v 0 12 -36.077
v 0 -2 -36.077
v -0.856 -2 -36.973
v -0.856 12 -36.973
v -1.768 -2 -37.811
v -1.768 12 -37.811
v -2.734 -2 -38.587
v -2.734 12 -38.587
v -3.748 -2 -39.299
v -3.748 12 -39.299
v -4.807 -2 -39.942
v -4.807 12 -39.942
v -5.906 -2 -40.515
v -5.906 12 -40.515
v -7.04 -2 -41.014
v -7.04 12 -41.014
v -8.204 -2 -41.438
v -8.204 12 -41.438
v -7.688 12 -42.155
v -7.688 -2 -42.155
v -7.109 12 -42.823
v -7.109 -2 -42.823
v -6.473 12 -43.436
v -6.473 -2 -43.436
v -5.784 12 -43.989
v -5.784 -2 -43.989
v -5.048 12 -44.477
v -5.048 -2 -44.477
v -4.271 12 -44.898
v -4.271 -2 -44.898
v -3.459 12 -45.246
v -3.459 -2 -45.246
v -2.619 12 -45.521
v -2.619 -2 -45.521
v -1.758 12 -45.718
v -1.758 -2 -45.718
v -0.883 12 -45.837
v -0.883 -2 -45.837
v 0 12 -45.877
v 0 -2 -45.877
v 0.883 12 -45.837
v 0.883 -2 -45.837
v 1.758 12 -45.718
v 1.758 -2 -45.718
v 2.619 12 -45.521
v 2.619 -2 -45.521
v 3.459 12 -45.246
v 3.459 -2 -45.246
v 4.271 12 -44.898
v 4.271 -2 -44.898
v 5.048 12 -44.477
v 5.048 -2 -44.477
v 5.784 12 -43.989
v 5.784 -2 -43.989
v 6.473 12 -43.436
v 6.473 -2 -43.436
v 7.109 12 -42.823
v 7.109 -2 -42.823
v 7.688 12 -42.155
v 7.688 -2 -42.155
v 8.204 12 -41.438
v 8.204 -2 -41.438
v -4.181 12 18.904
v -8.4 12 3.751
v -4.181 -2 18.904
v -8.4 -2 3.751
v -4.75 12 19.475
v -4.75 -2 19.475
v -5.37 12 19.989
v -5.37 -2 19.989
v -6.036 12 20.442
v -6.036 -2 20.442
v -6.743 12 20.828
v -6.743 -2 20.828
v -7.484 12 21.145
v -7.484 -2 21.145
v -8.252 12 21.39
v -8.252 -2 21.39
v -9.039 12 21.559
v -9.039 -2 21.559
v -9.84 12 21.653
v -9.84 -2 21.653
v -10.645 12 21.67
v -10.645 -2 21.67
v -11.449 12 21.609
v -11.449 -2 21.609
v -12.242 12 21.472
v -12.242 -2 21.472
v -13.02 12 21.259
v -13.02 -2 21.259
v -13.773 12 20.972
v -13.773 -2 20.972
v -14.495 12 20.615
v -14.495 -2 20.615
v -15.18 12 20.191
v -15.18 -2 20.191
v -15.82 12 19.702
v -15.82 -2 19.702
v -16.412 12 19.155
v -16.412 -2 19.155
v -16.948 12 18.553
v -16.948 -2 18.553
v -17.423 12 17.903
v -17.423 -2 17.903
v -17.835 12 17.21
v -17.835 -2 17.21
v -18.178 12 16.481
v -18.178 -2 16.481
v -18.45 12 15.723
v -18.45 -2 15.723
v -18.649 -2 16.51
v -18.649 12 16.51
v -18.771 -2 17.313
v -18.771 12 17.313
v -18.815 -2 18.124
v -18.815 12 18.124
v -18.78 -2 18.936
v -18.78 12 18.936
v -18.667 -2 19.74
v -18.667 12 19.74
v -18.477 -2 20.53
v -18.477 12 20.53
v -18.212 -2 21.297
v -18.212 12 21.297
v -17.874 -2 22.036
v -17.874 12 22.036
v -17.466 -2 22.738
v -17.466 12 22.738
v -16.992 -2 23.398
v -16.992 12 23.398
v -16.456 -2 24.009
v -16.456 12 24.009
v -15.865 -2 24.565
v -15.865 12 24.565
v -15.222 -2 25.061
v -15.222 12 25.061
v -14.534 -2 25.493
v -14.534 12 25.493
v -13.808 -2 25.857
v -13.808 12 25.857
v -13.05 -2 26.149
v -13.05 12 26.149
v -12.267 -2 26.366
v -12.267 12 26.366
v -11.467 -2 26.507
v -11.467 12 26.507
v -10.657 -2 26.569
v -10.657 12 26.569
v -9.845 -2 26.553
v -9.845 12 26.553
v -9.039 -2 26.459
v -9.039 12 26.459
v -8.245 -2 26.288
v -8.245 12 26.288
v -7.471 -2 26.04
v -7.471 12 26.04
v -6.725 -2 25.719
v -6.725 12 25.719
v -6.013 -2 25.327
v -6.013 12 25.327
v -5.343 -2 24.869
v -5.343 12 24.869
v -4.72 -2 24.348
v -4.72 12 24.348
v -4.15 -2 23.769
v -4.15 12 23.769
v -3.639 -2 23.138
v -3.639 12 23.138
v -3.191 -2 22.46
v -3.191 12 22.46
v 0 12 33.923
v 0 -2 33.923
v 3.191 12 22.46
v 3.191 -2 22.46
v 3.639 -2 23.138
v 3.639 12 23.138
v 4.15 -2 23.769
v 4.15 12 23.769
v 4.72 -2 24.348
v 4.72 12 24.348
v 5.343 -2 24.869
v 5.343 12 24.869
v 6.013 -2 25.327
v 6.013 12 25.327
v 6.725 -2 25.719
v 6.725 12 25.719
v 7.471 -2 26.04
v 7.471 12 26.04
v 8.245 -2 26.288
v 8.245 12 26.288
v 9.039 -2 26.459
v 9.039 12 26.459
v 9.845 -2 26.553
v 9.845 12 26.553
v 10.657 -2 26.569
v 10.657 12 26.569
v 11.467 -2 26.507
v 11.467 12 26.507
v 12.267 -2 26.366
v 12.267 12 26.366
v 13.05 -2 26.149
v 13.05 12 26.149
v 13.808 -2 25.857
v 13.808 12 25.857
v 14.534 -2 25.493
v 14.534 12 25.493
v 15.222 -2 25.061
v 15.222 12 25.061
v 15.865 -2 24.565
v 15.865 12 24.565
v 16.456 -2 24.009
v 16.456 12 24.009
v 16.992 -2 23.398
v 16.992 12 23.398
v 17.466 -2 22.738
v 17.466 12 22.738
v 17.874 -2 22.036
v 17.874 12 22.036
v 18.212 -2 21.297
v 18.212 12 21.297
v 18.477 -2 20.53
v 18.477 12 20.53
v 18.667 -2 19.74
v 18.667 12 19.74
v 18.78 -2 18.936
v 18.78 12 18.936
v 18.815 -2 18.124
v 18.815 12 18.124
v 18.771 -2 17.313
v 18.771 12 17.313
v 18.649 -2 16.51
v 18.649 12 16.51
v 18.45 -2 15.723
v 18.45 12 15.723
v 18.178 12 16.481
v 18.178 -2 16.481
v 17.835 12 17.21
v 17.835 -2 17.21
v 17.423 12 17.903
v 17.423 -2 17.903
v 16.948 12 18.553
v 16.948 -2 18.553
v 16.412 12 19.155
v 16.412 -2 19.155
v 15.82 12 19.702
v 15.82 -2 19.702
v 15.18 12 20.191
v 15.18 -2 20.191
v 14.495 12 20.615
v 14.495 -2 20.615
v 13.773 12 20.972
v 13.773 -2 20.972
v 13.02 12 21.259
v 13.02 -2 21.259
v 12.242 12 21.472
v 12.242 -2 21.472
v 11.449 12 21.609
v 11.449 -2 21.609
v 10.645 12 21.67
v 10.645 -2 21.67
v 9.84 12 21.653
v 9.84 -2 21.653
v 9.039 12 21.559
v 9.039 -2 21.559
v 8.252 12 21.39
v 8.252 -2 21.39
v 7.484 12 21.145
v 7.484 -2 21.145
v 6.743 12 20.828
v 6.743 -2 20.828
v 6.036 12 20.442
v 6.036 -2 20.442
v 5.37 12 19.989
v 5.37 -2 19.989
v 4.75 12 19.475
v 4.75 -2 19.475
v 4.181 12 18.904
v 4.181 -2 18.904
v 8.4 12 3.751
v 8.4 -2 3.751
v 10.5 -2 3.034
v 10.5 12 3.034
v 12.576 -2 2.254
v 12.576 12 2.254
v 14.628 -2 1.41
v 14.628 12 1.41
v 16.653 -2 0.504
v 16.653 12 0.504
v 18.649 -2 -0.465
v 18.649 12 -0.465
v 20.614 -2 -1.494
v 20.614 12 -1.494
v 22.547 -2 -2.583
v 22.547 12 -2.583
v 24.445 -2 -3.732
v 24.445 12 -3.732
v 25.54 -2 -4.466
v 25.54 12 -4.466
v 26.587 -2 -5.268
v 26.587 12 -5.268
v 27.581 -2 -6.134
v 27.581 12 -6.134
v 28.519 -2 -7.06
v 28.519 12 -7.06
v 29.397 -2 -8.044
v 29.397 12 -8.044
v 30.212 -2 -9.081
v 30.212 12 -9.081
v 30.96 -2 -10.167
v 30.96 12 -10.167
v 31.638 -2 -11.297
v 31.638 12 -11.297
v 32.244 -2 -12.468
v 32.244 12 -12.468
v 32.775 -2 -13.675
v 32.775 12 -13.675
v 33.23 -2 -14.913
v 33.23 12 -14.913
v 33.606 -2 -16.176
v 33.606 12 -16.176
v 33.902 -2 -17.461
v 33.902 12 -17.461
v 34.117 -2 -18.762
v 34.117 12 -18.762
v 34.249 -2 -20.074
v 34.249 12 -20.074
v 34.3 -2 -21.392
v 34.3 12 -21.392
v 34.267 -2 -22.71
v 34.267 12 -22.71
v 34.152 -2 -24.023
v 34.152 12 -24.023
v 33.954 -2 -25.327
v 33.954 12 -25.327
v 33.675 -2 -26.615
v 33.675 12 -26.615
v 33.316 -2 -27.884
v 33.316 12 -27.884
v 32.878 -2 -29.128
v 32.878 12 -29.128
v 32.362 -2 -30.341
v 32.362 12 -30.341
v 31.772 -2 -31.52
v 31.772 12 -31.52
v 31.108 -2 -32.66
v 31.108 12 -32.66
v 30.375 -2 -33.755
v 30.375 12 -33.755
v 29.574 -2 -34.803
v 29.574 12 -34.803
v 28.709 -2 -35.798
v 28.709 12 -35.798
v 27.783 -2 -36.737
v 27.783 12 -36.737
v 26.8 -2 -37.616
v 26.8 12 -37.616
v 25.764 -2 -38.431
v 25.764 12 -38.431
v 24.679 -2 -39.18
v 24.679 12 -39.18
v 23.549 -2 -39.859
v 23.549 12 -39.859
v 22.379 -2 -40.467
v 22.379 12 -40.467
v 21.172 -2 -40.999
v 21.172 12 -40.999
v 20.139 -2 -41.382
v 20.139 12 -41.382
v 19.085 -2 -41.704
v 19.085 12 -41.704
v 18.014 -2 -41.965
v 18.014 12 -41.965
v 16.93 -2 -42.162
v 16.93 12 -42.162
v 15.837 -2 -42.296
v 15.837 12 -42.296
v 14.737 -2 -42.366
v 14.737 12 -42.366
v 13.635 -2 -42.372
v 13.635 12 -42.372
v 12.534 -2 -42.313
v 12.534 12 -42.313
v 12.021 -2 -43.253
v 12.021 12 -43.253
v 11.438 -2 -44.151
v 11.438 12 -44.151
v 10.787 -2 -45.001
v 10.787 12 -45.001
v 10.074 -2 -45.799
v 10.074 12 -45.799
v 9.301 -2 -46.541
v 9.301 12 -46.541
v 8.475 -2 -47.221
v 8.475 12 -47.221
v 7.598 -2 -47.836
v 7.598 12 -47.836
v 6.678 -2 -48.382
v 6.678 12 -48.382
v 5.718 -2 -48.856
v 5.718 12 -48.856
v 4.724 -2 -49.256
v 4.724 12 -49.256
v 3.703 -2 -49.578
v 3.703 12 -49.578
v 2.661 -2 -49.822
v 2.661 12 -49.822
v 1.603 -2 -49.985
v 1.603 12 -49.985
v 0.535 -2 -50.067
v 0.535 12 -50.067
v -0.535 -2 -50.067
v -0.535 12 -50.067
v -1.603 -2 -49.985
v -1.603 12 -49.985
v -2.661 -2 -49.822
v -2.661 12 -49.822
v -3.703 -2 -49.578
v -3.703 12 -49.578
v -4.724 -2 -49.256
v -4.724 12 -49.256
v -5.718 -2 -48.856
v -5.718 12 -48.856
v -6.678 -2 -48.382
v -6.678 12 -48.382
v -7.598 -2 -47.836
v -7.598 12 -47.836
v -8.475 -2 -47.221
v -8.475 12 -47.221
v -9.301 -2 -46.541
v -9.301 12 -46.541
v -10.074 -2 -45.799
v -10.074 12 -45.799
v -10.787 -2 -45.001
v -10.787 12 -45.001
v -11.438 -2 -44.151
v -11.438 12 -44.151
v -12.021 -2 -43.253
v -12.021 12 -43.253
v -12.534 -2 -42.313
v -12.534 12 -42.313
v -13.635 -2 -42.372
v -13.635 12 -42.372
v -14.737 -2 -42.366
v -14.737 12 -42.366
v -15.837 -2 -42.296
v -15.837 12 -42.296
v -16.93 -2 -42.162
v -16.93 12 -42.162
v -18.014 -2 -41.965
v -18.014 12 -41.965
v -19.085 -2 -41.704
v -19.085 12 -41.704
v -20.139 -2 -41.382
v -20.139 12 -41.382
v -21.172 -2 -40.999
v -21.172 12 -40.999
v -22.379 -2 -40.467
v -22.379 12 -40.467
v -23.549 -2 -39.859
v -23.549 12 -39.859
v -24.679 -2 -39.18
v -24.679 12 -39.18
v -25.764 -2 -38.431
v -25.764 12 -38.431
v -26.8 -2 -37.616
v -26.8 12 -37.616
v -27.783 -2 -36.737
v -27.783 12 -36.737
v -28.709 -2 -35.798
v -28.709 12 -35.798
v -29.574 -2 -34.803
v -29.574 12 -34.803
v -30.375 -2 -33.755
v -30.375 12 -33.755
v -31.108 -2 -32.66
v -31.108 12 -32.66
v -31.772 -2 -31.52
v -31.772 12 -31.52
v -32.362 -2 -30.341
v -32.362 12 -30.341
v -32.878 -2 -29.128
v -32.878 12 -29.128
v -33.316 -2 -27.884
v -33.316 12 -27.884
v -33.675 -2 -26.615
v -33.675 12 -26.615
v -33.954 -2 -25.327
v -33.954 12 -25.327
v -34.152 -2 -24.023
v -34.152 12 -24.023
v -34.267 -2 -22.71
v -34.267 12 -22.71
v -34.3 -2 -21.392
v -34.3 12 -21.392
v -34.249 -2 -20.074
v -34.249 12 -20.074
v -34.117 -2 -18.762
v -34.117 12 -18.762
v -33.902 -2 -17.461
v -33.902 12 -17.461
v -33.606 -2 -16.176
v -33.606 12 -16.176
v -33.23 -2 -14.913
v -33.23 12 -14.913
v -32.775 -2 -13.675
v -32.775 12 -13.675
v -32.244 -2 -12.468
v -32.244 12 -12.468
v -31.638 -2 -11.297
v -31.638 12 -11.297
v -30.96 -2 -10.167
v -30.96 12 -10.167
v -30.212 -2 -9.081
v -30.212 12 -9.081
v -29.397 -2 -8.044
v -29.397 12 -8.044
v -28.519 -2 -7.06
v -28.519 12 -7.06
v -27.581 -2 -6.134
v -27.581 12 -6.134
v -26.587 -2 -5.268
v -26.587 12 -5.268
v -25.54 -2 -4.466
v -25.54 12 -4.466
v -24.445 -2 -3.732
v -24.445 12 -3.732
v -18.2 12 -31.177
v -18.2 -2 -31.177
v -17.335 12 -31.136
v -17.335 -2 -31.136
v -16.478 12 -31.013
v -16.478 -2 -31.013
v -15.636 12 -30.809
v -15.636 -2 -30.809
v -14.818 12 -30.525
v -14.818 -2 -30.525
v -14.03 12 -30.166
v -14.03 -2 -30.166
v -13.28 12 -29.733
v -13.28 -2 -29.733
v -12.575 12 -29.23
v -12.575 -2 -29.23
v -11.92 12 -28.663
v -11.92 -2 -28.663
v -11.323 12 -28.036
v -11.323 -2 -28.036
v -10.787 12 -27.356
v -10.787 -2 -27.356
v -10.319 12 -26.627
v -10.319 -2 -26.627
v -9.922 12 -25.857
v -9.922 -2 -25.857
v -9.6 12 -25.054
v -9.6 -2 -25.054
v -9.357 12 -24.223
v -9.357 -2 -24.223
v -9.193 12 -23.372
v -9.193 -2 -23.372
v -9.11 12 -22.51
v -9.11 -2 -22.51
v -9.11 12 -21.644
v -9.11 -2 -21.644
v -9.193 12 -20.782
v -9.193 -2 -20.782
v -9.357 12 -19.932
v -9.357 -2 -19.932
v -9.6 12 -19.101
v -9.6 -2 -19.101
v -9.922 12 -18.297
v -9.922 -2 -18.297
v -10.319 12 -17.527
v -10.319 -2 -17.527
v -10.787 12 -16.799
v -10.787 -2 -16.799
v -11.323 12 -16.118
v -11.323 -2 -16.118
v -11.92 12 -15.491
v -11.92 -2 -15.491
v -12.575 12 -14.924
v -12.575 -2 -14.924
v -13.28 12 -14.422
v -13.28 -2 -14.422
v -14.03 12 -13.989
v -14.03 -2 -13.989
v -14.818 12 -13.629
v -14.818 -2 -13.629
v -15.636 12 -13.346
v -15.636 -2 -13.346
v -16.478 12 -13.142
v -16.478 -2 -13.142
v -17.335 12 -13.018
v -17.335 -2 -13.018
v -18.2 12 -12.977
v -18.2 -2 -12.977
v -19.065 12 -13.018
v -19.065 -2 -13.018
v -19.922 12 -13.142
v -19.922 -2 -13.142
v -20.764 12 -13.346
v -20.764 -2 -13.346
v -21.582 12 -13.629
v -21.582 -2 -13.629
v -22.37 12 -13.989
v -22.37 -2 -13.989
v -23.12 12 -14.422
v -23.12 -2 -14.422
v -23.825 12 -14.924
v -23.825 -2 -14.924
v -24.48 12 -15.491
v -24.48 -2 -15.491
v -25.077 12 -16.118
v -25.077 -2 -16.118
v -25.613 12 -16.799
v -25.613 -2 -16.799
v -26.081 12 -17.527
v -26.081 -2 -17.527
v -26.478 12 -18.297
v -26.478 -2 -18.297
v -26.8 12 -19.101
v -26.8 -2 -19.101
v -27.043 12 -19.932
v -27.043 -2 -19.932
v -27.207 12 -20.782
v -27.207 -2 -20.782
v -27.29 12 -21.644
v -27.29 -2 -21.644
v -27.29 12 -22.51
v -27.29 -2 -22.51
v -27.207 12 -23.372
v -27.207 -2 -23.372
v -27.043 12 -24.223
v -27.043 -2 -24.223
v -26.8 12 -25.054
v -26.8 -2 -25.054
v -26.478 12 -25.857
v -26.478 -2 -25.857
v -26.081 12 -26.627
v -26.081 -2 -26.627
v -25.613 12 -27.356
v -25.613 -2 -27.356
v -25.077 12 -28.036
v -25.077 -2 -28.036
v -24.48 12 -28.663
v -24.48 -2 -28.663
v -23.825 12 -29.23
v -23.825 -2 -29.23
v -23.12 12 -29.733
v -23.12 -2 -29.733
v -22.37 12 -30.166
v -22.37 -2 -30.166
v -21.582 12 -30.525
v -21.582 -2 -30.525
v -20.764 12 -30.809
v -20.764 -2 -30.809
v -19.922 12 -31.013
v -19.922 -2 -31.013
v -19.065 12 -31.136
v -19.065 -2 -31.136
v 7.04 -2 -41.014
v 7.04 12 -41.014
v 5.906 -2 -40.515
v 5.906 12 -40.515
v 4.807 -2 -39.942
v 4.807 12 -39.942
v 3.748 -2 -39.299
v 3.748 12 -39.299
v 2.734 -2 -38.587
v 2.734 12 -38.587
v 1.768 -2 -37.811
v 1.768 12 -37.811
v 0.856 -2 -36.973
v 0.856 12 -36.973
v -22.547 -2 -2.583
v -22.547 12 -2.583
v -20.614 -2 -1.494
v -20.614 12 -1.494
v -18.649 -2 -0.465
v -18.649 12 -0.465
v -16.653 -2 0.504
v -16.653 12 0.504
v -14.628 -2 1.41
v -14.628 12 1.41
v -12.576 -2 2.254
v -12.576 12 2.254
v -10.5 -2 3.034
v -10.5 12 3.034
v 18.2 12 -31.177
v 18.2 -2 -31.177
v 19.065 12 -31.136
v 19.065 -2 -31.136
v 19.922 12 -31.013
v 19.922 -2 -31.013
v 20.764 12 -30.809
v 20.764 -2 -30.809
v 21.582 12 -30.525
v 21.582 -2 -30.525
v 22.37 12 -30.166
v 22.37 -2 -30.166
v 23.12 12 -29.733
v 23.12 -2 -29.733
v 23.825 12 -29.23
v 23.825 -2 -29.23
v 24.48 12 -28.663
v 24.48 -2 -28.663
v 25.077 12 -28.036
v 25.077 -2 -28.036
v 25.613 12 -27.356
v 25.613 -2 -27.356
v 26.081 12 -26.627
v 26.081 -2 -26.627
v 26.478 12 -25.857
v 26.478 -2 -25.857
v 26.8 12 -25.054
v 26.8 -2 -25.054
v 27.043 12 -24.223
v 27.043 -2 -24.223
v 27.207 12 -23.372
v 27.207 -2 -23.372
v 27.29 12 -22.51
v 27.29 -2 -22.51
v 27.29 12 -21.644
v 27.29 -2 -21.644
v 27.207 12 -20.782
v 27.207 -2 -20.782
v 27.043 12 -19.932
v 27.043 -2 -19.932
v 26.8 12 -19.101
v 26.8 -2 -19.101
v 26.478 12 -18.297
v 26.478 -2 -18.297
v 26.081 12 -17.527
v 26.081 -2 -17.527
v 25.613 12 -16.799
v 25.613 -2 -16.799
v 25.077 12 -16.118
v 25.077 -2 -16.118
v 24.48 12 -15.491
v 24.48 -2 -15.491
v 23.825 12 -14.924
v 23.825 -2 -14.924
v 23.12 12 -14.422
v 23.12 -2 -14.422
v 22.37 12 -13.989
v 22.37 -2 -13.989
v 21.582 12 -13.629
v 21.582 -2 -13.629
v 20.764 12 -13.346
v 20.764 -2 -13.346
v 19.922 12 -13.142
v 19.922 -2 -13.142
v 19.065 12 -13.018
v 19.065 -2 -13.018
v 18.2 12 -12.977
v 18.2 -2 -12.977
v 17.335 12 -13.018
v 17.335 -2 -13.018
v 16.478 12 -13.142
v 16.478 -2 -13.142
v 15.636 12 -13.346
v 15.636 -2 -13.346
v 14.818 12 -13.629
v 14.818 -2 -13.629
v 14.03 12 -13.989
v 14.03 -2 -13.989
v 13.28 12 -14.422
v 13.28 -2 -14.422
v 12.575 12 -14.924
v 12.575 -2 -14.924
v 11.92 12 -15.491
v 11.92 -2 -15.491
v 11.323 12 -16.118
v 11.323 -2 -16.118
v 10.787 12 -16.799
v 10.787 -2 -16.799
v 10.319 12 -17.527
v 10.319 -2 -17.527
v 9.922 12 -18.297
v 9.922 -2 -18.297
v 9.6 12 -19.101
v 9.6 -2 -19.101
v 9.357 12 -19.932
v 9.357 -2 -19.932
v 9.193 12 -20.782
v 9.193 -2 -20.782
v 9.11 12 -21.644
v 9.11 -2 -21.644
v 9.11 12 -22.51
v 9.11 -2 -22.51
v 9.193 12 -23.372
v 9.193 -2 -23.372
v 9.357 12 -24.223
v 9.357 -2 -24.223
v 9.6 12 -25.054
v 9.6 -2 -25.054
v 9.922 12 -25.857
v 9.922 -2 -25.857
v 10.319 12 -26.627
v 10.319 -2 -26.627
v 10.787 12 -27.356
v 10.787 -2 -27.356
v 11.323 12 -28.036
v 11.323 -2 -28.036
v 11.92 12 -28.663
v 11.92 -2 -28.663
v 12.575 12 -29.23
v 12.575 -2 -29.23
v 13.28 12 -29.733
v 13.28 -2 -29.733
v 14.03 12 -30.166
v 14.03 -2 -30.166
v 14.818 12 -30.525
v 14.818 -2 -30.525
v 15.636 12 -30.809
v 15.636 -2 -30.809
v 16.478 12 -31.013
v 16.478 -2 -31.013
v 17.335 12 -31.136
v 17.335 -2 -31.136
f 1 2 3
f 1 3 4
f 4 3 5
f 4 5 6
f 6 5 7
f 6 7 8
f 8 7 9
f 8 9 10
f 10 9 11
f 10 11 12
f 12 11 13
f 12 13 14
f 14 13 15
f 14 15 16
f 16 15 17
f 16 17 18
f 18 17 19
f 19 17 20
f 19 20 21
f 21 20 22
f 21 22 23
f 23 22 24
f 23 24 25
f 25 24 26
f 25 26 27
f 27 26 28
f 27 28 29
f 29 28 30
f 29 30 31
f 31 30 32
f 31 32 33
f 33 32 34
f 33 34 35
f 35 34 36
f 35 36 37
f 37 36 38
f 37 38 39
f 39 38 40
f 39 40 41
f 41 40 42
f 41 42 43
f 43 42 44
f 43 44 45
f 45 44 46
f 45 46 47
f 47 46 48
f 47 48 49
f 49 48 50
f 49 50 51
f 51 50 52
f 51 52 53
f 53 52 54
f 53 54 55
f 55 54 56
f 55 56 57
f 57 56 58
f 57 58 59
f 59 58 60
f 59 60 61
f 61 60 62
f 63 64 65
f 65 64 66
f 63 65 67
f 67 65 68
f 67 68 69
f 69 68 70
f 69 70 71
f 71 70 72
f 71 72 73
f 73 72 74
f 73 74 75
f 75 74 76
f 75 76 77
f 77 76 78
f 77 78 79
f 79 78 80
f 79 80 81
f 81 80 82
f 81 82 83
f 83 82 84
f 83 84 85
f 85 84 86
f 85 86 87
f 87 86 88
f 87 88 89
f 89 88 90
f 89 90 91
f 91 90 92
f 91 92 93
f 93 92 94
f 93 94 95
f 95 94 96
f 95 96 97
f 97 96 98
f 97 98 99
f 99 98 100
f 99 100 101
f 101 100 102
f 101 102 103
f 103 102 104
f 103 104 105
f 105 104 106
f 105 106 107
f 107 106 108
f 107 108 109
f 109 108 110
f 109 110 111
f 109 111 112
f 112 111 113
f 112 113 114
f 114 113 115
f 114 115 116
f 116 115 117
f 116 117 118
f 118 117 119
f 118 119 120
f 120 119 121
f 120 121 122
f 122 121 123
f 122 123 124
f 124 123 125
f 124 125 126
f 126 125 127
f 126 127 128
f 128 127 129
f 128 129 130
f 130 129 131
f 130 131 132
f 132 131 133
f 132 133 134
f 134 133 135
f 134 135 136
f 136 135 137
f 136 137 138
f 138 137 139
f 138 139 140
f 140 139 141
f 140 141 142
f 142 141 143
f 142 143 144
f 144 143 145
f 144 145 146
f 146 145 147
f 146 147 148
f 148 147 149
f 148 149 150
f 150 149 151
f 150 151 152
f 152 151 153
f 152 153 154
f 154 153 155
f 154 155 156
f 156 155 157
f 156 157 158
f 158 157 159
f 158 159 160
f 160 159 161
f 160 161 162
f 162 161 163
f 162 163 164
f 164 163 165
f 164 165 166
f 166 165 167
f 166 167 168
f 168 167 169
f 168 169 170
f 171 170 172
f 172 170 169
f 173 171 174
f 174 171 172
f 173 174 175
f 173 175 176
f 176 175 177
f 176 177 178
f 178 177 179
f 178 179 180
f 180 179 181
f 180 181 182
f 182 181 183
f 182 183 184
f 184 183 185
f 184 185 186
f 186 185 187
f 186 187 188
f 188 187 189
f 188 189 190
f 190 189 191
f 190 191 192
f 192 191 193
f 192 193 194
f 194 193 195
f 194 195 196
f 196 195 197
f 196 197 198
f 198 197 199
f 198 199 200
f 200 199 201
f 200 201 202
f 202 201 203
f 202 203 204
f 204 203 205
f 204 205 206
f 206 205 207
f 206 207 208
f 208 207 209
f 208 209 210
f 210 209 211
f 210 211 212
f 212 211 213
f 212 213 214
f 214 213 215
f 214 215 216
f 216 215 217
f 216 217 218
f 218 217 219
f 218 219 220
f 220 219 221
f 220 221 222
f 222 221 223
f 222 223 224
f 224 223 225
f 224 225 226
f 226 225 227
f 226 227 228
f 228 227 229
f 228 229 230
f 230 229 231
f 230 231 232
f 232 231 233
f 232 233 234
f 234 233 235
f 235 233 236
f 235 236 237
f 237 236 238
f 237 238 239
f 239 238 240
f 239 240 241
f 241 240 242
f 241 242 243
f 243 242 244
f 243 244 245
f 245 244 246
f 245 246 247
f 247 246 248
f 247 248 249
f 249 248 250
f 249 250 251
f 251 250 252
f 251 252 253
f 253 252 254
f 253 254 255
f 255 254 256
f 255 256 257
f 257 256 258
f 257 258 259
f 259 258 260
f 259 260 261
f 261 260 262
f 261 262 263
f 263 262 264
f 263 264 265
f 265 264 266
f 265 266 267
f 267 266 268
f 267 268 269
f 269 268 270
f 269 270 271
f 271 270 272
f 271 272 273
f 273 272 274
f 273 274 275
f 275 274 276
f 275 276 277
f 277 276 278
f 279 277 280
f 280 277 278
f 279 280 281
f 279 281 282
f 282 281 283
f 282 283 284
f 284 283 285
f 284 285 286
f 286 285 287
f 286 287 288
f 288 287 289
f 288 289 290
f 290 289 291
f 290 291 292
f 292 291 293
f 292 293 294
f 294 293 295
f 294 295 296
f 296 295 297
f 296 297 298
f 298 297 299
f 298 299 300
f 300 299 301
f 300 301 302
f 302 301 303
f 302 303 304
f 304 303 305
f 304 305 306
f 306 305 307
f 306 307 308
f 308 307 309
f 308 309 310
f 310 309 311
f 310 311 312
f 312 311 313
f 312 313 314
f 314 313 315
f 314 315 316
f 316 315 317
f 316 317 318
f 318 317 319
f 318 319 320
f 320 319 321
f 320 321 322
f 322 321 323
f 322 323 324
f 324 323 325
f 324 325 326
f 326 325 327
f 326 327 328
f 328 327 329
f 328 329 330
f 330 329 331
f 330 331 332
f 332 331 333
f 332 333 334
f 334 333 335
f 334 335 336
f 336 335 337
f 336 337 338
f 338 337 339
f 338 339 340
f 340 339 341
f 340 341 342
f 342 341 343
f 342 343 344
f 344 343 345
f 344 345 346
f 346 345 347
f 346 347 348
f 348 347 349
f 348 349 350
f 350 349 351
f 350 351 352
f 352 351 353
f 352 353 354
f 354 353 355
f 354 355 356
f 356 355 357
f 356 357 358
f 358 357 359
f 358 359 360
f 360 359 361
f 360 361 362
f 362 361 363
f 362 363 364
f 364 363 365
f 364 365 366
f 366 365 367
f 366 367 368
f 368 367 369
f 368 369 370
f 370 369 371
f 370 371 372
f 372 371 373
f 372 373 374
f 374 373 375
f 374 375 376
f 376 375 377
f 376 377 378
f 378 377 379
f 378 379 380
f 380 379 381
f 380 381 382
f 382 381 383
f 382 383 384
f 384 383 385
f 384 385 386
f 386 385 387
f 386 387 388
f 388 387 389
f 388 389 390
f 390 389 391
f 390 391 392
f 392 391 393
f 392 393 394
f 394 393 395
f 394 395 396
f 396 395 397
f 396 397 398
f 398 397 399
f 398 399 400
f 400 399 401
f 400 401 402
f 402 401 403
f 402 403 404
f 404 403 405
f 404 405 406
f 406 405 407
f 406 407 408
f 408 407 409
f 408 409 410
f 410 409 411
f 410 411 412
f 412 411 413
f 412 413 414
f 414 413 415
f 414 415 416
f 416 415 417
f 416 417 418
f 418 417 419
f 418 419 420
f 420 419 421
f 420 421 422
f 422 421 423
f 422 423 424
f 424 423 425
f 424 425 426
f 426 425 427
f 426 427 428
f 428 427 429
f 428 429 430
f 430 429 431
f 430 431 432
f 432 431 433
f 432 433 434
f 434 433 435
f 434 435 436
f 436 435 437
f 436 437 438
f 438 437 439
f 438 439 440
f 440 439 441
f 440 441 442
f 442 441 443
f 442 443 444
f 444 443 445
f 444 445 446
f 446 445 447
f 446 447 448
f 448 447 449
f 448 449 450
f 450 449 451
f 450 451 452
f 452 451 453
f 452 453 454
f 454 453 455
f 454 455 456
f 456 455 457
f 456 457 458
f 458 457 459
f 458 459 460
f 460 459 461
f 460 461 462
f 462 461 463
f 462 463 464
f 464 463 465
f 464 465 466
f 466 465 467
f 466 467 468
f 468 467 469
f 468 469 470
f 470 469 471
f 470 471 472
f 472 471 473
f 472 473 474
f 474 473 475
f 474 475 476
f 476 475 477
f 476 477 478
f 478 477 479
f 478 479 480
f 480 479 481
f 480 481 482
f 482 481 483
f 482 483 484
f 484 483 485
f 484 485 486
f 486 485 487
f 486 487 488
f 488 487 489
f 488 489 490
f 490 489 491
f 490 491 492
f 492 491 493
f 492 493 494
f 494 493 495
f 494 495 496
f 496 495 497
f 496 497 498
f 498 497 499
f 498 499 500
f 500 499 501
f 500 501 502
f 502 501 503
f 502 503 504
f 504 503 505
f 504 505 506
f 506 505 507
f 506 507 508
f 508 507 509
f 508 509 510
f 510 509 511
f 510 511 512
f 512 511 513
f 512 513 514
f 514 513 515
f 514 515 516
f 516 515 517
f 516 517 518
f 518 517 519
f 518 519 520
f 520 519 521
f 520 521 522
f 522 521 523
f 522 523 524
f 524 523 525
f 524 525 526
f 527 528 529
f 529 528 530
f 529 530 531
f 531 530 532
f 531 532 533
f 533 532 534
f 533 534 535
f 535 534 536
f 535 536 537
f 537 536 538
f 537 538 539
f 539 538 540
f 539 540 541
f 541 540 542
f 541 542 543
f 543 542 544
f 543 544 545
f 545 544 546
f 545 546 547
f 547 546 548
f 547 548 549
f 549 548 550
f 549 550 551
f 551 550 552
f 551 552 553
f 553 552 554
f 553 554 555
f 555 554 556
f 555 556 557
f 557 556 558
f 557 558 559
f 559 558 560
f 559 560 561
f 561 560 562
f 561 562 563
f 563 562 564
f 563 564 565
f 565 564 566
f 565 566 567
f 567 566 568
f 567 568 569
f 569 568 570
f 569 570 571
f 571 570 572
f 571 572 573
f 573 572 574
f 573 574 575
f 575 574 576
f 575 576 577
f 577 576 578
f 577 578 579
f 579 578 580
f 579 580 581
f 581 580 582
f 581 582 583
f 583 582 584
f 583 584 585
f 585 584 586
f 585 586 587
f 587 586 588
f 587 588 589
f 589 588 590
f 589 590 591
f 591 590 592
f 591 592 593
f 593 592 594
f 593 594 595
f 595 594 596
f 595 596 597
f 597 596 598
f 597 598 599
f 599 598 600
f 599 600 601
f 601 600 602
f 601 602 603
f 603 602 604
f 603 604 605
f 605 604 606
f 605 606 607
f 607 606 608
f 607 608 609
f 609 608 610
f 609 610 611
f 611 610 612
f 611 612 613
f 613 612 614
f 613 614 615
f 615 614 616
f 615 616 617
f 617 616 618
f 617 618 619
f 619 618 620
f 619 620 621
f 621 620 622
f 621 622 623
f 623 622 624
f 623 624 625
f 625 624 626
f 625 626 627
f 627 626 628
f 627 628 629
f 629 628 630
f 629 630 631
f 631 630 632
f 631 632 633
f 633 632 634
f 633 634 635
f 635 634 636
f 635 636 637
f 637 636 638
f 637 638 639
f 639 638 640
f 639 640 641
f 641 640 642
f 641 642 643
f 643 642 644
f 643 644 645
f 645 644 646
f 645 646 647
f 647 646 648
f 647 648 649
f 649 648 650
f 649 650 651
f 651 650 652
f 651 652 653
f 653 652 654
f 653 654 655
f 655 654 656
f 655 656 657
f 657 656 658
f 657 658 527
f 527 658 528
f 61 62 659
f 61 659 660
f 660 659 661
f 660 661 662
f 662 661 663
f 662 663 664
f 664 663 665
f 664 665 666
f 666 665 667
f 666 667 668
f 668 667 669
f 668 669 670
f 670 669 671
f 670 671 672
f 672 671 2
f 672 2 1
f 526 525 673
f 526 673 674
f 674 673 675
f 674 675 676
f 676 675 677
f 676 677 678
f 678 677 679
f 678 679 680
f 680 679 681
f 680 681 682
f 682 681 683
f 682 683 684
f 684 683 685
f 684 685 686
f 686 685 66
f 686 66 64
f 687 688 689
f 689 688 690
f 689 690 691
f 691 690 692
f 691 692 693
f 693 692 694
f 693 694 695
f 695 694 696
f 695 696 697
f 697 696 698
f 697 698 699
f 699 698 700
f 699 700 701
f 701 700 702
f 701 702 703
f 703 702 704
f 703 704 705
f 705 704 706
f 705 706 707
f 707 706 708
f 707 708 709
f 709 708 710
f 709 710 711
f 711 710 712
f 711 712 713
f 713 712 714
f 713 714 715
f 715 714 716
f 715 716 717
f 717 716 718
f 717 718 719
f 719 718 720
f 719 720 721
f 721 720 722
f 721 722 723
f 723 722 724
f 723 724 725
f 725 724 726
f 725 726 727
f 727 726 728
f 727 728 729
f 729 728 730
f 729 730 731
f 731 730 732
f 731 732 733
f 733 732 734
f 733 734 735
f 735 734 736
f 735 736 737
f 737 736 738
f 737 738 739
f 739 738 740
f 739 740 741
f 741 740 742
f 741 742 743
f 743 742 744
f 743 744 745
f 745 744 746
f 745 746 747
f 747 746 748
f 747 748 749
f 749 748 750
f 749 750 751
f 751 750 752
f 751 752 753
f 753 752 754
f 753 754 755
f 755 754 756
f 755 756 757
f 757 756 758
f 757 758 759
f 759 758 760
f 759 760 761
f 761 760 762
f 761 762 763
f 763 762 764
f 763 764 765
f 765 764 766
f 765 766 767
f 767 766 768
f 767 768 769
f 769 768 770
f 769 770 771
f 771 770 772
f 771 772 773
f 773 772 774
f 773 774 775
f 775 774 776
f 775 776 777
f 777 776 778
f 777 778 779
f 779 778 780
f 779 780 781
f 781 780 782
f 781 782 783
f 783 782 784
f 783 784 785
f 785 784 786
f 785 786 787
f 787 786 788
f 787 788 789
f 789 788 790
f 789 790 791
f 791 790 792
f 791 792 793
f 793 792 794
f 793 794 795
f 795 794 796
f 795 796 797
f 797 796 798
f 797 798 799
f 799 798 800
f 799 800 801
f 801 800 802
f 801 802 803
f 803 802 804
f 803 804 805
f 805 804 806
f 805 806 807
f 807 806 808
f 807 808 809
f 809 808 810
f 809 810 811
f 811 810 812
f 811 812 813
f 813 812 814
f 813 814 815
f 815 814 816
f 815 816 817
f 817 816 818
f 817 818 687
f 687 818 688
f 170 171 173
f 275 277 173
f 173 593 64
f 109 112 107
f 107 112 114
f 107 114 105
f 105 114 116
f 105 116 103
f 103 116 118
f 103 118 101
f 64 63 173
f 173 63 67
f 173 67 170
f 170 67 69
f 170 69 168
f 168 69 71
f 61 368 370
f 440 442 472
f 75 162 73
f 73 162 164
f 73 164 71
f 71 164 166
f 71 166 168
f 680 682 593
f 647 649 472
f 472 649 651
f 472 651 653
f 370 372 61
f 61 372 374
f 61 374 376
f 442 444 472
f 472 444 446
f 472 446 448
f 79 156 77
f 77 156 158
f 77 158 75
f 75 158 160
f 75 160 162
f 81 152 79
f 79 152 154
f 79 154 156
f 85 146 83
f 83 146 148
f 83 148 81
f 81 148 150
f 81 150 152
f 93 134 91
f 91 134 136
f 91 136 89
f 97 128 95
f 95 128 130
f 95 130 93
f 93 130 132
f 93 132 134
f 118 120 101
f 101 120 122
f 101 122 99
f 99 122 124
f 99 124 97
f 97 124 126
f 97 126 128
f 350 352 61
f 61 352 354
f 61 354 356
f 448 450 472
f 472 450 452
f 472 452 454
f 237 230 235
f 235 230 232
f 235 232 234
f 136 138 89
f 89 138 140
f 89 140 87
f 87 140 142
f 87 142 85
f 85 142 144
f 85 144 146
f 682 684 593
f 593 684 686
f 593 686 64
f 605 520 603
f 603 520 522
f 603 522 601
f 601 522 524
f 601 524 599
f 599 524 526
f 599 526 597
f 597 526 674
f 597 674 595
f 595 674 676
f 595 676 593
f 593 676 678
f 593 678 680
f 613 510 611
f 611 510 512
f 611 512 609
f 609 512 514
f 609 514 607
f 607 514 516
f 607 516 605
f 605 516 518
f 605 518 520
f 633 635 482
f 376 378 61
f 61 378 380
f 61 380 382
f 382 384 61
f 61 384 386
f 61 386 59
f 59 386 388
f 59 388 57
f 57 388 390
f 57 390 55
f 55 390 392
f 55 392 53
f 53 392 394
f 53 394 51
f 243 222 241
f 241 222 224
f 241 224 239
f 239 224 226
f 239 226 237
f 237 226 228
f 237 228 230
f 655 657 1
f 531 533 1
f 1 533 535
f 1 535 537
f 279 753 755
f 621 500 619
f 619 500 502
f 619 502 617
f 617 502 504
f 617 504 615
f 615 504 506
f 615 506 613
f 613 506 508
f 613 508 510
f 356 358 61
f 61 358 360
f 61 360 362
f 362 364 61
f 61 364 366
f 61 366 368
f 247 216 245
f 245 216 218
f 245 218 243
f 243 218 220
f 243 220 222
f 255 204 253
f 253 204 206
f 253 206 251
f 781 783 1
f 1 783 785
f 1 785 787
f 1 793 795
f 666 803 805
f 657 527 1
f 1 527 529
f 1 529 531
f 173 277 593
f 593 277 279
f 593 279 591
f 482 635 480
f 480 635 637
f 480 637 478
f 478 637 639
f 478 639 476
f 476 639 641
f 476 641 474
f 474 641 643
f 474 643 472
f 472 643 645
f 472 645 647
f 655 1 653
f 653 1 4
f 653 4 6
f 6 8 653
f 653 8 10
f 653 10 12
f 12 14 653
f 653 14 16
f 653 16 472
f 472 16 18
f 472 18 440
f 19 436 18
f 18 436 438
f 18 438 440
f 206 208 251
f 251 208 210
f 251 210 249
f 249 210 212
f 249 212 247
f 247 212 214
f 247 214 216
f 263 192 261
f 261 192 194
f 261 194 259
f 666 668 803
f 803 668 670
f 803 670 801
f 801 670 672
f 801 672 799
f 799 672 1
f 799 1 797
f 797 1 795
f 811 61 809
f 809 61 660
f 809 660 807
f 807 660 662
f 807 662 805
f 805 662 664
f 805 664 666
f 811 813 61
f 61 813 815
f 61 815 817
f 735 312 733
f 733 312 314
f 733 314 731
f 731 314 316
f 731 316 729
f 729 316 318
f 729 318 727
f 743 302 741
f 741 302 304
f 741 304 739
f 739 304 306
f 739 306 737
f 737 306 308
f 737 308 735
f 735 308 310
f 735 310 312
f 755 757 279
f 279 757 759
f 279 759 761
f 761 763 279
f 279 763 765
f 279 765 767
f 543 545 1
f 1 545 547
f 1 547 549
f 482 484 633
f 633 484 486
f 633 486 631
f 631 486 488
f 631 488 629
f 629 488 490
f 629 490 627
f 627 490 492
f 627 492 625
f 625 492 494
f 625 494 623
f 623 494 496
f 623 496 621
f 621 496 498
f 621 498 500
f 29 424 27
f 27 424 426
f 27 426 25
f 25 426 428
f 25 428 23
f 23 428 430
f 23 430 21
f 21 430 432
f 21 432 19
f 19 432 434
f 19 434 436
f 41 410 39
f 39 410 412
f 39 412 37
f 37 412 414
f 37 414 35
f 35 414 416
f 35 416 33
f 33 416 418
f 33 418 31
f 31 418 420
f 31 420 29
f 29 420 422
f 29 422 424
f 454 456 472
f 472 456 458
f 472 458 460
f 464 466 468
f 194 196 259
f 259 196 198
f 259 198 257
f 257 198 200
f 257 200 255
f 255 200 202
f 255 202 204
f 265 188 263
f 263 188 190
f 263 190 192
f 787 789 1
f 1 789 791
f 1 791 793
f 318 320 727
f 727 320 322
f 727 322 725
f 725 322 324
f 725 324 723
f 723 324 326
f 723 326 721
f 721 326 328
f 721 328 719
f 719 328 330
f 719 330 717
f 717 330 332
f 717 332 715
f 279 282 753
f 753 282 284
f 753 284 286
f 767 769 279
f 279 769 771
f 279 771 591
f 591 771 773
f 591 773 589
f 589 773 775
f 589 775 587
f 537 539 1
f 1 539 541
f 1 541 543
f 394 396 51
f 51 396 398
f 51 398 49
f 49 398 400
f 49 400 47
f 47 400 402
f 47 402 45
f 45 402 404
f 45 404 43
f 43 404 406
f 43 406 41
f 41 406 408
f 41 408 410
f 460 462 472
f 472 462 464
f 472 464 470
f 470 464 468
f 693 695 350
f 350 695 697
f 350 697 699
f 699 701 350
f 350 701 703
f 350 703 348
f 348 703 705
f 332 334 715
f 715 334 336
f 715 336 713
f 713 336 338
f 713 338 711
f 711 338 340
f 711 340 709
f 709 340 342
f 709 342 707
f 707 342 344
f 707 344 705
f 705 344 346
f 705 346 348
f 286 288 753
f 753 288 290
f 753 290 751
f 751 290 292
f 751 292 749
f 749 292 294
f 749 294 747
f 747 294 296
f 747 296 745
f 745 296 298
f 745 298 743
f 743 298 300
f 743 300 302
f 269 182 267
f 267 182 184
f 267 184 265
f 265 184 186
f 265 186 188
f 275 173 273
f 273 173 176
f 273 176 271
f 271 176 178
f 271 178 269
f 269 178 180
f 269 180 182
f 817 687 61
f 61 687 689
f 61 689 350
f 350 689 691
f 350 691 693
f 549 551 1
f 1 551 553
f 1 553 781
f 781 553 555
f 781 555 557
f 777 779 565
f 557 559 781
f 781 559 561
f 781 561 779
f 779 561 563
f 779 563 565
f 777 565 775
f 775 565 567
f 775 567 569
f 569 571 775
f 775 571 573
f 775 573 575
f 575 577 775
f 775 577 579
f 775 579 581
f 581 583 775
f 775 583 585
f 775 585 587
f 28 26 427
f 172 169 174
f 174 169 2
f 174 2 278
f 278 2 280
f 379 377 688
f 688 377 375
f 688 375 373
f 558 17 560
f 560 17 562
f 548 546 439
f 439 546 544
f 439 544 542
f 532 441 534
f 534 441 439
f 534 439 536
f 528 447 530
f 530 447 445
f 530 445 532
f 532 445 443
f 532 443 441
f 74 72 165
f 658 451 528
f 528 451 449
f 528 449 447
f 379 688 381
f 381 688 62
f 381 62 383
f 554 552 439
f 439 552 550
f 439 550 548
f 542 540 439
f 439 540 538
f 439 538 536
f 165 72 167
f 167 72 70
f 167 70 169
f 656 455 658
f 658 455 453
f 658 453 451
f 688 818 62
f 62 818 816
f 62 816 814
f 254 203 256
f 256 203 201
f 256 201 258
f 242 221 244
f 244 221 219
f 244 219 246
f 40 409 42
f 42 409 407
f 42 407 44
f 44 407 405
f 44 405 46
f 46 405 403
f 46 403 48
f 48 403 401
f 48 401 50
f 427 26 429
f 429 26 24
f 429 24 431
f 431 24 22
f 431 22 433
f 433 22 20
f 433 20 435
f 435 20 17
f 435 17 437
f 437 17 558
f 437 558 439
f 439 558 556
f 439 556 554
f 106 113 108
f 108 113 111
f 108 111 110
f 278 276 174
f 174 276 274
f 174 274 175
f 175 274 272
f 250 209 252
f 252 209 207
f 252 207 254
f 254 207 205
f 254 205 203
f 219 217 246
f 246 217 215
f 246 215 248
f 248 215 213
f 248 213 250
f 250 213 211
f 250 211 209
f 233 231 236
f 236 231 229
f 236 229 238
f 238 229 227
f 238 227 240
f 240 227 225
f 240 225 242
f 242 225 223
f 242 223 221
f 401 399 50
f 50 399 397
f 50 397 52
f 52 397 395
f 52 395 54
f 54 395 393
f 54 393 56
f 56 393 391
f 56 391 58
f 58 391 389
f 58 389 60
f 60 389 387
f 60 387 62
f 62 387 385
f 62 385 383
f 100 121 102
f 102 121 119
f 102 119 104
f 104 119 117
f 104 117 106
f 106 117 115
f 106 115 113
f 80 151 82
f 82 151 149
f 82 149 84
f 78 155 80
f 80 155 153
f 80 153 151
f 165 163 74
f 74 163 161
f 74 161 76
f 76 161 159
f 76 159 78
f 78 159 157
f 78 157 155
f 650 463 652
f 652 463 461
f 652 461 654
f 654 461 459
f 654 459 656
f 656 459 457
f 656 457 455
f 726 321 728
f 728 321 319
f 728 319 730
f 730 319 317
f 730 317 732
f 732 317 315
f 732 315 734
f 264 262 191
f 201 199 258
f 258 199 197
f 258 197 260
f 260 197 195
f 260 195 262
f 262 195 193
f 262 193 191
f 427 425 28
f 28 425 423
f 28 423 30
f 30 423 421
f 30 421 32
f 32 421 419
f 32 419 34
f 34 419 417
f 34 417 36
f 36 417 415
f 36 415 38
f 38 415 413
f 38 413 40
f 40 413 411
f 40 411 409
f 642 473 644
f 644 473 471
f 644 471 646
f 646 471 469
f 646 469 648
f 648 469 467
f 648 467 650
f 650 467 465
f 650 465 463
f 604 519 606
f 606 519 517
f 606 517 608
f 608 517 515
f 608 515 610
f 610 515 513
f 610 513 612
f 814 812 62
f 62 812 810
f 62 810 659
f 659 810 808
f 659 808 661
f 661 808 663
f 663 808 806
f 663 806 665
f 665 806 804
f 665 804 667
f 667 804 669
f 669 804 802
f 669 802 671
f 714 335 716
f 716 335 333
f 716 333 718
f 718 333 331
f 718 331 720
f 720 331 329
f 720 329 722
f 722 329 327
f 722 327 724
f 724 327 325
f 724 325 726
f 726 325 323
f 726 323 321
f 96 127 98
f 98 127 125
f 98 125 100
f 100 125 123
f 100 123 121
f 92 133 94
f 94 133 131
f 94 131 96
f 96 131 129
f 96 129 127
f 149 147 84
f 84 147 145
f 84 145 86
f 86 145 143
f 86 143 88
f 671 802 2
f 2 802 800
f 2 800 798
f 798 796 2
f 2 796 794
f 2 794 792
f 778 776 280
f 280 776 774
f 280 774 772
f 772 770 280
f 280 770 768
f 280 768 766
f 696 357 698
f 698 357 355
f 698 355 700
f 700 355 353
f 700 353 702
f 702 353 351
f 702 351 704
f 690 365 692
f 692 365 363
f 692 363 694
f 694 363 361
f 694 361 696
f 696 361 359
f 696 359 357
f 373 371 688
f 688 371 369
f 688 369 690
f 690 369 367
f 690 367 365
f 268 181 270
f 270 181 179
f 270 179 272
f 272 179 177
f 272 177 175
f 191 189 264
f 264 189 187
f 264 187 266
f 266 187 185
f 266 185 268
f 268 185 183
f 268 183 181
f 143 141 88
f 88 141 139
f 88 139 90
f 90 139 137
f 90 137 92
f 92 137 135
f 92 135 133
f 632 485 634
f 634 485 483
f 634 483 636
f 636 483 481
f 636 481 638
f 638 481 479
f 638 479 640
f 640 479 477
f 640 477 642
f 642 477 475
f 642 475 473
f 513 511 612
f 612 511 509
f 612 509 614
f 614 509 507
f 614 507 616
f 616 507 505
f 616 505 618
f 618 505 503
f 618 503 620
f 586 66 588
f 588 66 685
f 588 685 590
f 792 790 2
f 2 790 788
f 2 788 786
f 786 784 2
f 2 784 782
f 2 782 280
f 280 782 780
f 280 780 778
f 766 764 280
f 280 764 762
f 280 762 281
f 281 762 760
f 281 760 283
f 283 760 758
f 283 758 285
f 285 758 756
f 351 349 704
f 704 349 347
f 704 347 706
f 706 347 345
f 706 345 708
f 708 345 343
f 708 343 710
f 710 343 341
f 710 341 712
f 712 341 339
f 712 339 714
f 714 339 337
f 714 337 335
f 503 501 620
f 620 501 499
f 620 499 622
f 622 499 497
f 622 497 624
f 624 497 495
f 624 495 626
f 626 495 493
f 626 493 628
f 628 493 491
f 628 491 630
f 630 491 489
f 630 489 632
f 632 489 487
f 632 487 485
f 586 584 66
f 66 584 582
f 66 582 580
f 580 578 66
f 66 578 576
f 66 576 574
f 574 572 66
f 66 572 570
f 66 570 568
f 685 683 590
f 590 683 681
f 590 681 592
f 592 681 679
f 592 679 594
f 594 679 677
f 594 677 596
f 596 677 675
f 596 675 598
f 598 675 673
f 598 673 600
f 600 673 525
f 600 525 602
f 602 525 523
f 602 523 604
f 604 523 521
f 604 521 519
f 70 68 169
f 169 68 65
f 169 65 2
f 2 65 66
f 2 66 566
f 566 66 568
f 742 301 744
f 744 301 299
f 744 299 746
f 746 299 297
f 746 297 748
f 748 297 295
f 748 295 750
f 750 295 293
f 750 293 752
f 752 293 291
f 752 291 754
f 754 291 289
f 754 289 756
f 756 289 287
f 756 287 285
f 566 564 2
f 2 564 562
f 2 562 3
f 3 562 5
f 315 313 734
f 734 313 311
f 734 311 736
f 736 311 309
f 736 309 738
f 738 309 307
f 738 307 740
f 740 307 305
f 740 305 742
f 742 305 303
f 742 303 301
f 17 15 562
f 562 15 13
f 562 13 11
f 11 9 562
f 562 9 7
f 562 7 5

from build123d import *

# Parameters (mm, degrees)
SKETCH_1_R      = 6.5
EXTRUDE_3_DEPTH = 10
SCALE_1_SCALE   = 1.4


with BuildPart() as part:
    # 草图1 → 凸台-拉伸3 (new body)
    # profile 1 of 12: a face of its own
    with BuildSketch(Plane(origin=(0, 0, 0), x_dir=(1, 0, 0), z_dir=(0, 1, 0))):
        with BuildLine():
            ThreePointArc((5.859785995, 33.829217687), (7.388132252, 34.23249014), (8.953138838, 34.454357972))
            ThreePointArc((8.953138838, 34.454357972), (0, 40), (-8.953138838, 34.454357972))
            ThreePointArc((-8.953138838, 34.454357972), (-7.388132252, 34.23249014), (-5.859785995, 33.829217687))
            ThreePointArc((-5.859785995, 33.829217687), (0, 37), (5.859785995, 33.829217687))
        make_face()
    # profile 2 of 12: a face of its own
    with BuildSketch(Plane(origin=(0, 0, 0), x_dir=(1, 0, 0), z_dir=(0, 1, 0))):
        with BuildLine():
            ThreePointArc((0, 30), (7.005568982, 34.149386276), (15.123058987, 33.515541466))
            ThreePointArc((15.123058987, 33.515541466), (24.442500681, 20.921509808), (17.460562256, 6.896027189))
            ThreePointArc((17.460562256, 6.896027189), (11.894938122, 3.870741491), (6, 1.551640353))
            Line((6, 1.551640353), (0, -20))
            Line((0, -20), (-6, 1.551640353))
            ThreePointArc((-6, 1.551640353), (-11.894938122, 3.870741491), (-17.460562256, 6.896027189))
            ThreePointArc((-17.460562256, 6.896027189), (-24.442500681, 20.921509808), (-15.123058987, 33.515541466))
            ThreePointArc((-15.123058987, 33.515541466), (-7.005568982, 34.149386276), (0, 30))
        make_face()
        with Locations(Location((-13, 20, 0), (0, 0, 270))):
            Circle(SKETCH_1_R, mode=Mode.SUBTRACT)
        with Locations(Location((13, 20, 0), (0, 0, 270))):
            Circle(SKETCH_1_R, mode=Mode.SUBTRACT)
    # profile 3 of 12: a face of its own
    with BuildSketch(Plane(origin=(0, 0, 0), x_dir=(1, 0, 0), z_dir=(0, 1, 0))):
        with BuildLine():
            ThreePointArc((-1.7, -7), (-7.439120142, -11.25), (-13.178240283, -7))
            ThreePointArc((-13.178240283, -7), (-7.439120142, -14.75), (-1.7, -7))
        make_face()
    # profile 4 of 12: a face of its own
    with BuildSketch(Plane(origin=(0, 0, 0), x_dir=(1, 0, 0), z_dir=(0, 1, 0))):
        with BuildLine():
            ThreePointArc((1.7, -7), (7.439120142, -14.75), (13.178240283, -7))
            ThreePointArc((13.178240283, -7), (7.439120142, -11.25), (1.7, -7))
        make_face()
    # profile 5 of 12: a face of its own
    with BuildSketch(Plane(origin=(0, 0, 0), x_dir=(1, 0, 0), z_dir=(0, 1, 0))):
        with BuildLine():
            ThreePointArc((1.7, -7), (1.48214902, -9.46728311), (2.279456101, -11.812330319))
            Line((2.279456101, -11.812330319), (2.986703917, -9.271938557))
            ThreePointArc((2.986703917, -9.271938557), (2.218269676, -8.206809162), (1.7, -7))
        make_face()
    # profile 6 of 12: a face of its own
    with BuildSketch(Plane(origin=(0, 0, 0), x_dir=(1, 0, 0), z_dir=(0, 1, 0))):
        with BuildLine():
            Line((2.986703917, -9.271938557), (2.279456101, -11.812330319))
            ThreePointArc((2.279456101, -11.812330319), (9.862665709, -14.238754584), (13.178240283, -7))
            ThreePointArc((13.178240283, -7), (8.744619259, -11.106250682), (2.986703917, -9.271938557))
        make_face()
    # profile 7 of 12: a face of its own
    with BuildSketch(Plane(origin=(0, 0, 0), x_dir=(1, 0, 0), z_dir=(0, 1, 0))):
        with BuildLine():
            ThreePointArc((1.7, -7), (1.48214902, -9.46728311), (2.279456101, -11.812330319))
            Line((2.279456101, -11.812330319), (2.986703917, -9.271938557))
            ThreePointArc((2.986703917, -9.271938557), (2.218269676, -8.206809162), (1.7, -7))
        make_face()
    # profile 8 of 12: a face of its own
    with BuildSketch(Plane(origin=(0, 0, 0), x_dir=(1, 0, 0), z_dir=(0, 1, 0))):
        with BuildLine():
            Line((2.986703917, -9.271938557), (2.279456101, -11.812330319))
            ThreePointArc((2.279456101, -11.812330319), (9.862665709, -14.238754584), (13.178240283, -7))
            ThreePointArc((13.178240283, -7), (8.744619259, -11.106250682), (2.986703917, -9.271938557))
        make_face()
    # profile 9 of 12: a face of its own
    with BuildSketch(Plane(origin=(0, 0, 0), x_dir=(1, 0, 0), z_dir=(0, 1, 0))):
        with BuildLine():
            ThreePointArc((-13.178240283, -7), (-9.862665709, -14.238754584), (-2.279456101, -11.812330319))
            Line((-2.279456101, -11.812330319), (-2.986703917, -9.271938557))
            ThreePointArc((-2.986703917, -9.271938557), (-8.744619259, -11.106250682), (-13.178240283, -7))
        make_face()
    # profile 10 of 12: a face of its own
    with BuildSketch(Plane(origin=(0, 0, 0), x_dir=(1, 0, 0), z_dir=(0, 1, 0))):
        with BuildLine():
            Line((-2.986703917, -9.271938557), (-2.279456101, -11.812330319))
            ThreePointArc((-2.279456101, -11.812330319), (-1.48214902, -9.46728311), (-1.7, -7))
            ThreePointArc((-1.7, -7), (-2.218269676, -8.206809162), (-2.986703917, -9.271938557))
        make_face()
    # profile 11 of 12: a face of its own
    with BuildSketch(Plane(origin=(0, 0, 0), x_dir=(1, 0, 0), z_dir=(0, 1, 0))):
        with BuildLine():
            ThreePointArc((-13.178240283, -7), (-9.862665709, -14.238754584), (-2.279456101, -11.812330319))
            Line((-2.279456101, -11.812330319), (-2.986703917, -9.271938557))
            ThreePointArc((-2.986703917, -9.271938557), (-8.744619259, -11.106250682), (-13.178240283, -7))
        make_face()
    # profile 12 of 12: a face of its own
    with BuildSketch(Plane(origin=(0, 0, 0), x_dir=(1, 0, 0), z_dir=(0, 1, 0))):
        with BuildLine():
            Line((-2.986703917, -9.271938557), (-2.279456101, -11.812330319))
            ThreePointArc((-2.279456101, -11.812330319), (-1.48214902, -9.46728311), (-1.7, -7))
            ThreePointArc((-1.7, -7), (-2.218269676, -8.206809162), (-2.986703917, -9.271938557))
        make_face()
    extrude(amount=EXTRUDE_3_DEPTH)


with BuildPart() as part_1:
    # 缩放比例1: scaled about (0, 5, -14.807027766)
    add(part.part.scale(SCALE_1_SCALE).moved(Location((0, -2, 5.922811106))))


solid = part_1.part
